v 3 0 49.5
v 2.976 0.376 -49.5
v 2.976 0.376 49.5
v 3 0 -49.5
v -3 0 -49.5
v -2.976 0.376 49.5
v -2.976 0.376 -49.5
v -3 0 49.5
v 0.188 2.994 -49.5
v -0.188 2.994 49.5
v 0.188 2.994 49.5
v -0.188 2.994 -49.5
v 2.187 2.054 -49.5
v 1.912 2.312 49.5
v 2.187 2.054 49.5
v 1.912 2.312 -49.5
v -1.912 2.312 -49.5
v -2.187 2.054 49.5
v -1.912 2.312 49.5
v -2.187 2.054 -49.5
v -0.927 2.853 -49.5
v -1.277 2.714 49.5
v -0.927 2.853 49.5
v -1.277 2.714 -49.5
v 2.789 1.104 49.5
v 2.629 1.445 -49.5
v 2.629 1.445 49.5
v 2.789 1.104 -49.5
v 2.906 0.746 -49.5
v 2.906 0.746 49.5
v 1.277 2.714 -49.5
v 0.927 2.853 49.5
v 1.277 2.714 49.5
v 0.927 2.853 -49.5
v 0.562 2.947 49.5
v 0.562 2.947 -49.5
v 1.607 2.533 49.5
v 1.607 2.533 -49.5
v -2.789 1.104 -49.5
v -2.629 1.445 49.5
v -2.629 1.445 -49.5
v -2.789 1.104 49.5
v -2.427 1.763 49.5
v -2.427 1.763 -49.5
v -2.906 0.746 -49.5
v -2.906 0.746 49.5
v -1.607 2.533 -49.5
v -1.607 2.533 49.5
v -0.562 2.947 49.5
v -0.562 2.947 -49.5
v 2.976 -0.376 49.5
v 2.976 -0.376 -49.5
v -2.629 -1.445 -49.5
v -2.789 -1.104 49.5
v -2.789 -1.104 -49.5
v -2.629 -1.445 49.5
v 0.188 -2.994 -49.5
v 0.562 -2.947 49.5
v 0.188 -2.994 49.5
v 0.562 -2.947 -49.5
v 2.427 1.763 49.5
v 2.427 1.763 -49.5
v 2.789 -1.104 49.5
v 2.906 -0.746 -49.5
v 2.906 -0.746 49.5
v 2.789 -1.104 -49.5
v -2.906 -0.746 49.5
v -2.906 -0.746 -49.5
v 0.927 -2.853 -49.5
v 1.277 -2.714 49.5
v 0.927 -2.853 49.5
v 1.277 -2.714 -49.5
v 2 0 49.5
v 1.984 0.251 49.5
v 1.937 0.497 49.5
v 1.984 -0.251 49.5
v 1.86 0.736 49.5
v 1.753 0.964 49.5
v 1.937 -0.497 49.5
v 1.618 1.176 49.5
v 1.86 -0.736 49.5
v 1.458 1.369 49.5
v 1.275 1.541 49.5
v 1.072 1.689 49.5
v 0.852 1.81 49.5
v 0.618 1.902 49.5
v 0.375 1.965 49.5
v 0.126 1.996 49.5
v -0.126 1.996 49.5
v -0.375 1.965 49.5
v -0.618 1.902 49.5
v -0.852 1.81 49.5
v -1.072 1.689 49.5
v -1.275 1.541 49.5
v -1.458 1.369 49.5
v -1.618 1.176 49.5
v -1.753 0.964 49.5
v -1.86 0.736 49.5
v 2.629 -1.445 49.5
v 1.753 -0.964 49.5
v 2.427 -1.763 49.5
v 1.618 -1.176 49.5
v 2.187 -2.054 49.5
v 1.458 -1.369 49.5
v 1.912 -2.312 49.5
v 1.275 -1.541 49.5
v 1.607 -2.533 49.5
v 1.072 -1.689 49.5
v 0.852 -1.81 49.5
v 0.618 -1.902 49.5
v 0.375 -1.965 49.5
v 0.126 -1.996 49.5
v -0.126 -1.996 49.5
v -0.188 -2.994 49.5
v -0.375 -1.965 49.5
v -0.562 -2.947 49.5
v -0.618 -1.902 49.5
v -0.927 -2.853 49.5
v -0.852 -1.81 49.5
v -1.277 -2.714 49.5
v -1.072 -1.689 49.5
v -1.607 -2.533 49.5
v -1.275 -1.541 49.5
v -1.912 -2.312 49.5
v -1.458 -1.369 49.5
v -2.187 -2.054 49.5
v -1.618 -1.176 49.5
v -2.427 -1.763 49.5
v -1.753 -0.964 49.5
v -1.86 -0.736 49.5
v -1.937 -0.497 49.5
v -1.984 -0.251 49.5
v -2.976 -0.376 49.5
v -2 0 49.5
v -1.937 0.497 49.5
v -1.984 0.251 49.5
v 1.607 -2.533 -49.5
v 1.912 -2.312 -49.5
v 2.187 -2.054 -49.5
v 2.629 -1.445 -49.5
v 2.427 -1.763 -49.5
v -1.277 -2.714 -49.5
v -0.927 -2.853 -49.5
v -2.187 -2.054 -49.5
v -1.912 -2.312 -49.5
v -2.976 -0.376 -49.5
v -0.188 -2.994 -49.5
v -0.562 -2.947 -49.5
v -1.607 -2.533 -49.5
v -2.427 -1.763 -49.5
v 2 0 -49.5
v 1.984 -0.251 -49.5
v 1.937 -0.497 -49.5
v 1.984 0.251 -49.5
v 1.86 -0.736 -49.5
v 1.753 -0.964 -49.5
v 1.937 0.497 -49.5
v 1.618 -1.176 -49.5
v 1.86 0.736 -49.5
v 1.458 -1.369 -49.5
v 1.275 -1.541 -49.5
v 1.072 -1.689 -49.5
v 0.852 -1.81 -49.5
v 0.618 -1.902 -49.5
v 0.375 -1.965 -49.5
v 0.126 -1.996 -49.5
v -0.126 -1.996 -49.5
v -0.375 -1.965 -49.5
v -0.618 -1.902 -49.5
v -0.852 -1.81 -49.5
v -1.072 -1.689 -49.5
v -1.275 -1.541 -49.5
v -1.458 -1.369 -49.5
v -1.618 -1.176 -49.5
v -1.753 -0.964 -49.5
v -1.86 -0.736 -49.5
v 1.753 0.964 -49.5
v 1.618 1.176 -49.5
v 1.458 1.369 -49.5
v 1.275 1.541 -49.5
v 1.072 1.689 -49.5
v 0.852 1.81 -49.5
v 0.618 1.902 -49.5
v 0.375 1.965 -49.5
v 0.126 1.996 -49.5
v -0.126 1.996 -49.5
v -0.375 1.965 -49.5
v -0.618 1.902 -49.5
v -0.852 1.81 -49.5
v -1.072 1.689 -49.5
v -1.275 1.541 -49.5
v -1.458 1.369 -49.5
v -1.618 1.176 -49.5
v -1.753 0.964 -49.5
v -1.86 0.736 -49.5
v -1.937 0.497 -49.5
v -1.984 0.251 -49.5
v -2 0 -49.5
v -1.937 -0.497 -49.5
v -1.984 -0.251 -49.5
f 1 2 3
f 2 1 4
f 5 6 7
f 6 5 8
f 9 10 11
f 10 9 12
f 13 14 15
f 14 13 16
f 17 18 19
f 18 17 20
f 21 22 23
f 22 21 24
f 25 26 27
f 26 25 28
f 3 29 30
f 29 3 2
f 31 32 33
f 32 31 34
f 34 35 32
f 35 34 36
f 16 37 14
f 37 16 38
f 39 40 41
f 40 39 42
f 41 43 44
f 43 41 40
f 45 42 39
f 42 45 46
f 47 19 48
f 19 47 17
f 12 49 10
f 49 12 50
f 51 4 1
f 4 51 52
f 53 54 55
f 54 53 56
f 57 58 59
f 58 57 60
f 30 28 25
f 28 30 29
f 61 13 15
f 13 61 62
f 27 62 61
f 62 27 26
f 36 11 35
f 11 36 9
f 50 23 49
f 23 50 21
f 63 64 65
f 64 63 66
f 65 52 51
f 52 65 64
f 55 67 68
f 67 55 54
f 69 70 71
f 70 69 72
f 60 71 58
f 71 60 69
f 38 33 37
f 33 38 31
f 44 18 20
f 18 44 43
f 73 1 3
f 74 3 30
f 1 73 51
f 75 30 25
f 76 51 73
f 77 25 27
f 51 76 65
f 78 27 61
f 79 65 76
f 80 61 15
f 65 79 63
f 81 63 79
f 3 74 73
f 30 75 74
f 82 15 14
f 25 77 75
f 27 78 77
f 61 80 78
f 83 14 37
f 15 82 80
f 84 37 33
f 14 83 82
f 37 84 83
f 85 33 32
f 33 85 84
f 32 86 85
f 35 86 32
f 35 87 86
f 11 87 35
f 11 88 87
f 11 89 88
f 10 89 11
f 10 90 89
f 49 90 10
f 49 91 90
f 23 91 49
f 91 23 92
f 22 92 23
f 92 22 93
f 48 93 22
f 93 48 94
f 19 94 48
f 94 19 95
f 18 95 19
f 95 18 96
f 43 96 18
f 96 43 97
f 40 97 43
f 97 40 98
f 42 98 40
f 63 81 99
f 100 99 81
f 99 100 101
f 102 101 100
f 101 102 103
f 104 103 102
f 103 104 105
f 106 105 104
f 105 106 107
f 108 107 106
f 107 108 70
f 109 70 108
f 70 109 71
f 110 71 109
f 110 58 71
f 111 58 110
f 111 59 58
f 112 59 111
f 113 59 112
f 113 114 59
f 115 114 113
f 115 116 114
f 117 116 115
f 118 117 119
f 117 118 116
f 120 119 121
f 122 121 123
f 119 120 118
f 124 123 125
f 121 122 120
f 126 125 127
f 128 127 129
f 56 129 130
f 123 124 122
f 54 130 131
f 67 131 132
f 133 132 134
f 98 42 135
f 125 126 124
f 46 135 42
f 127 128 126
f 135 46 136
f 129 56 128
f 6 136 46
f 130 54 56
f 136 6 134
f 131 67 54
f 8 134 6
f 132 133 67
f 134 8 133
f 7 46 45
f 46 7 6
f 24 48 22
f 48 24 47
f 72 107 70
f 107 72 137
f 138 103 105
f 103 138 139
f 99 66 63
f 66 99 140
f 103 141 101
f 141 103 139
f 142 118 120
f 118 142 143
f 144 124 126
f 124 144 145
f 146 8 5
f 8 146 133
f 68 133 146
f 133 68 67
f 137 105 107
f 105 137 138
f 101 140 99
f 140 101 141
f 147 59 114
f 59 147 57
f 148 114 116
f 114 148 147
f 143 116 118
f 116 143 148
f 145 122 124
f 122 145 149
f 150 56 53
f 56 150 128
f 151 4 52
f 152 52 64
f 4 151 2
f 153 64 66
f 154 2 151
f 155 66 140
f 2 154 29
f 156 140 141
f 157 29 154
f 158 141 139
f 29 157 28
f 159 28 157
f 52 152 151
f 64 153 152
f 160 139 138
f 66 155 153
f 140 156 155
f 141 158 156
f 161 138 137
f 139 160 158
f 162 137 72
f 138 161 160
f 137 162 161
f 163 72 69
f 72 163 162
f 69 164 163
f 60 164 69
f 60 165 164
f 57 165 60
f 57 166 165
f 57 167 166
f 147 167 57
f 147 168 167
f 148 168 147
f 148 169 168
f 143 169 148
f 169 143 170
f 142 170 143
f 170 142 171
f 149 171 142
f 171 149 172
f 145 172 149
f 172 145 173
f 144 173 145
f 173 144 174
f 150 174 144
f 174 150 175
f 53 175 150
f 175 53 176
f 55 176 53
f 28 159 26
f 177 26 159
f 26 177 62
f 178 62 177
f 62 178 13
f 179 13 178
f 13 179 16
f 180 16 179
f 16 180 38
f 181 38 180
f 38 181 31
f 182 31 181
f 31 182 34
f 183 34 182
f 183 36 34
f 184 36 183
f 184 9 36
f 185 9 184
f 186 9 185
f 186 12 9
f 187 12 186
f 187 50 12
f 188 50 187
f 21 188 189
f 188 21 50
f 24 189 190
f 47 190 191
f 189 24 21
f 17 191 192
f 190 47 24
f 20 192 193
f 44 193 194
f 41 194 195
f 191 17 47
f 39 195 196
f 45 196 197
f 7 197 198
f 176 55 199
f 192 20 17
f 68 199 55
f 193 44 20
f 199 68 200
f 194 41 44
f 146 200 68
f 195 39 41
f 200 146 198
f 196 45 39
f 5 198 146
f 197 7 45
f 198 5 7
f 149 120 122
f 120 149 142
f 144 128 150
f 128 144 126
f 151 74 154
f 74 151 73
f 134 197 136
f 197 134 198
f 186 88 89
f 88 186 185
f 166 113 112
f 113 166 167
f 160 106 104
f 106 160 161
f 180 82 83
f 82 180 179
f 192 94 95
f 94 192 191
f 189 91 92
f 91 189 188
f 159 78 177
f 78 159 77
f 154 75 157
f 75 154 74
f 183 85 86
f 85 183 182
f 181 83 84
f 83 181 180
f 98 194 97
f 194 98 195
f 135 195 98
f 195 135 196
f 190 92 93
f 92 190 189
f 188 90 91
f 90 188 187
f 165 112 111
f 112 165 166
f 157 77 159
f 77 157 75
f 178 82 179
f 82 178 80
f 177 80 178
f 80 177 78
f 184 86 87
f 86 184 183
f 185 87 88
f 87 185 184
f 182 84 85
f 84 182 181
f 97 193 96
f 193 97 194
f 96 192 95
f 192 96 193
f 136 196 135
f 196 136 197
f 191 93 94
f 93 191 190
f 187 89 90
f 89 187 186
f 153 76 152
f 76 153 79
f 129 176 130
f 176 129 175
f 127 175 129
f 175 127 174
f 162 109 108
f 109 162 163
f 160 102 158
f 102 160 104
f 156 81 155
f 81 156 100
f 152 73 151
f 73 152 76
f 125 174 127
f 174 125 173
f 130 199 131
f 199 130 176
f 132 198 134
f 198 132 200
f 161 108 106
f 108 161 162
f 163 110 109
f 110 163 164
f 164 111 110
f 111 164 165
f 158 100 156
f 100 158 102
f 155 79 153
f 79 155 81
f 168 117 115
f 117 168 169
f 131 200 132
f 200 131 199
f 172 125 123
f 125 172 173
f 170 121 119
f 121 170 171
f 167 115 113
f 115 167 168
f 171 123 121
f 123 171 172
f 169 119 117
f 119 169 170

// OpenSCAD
$fn = 50;


difference() {
	union() {
		translate(v = [0, 0, -49.5000000000]) {
			cylinder(h = 99, r = 3.0000000000);
		}
	}
	union() {
		translate(v = [0, 0, -100.0000000000]) {
			cylinder(h = 200, r = 2.0000000000);
		}
	}
}
